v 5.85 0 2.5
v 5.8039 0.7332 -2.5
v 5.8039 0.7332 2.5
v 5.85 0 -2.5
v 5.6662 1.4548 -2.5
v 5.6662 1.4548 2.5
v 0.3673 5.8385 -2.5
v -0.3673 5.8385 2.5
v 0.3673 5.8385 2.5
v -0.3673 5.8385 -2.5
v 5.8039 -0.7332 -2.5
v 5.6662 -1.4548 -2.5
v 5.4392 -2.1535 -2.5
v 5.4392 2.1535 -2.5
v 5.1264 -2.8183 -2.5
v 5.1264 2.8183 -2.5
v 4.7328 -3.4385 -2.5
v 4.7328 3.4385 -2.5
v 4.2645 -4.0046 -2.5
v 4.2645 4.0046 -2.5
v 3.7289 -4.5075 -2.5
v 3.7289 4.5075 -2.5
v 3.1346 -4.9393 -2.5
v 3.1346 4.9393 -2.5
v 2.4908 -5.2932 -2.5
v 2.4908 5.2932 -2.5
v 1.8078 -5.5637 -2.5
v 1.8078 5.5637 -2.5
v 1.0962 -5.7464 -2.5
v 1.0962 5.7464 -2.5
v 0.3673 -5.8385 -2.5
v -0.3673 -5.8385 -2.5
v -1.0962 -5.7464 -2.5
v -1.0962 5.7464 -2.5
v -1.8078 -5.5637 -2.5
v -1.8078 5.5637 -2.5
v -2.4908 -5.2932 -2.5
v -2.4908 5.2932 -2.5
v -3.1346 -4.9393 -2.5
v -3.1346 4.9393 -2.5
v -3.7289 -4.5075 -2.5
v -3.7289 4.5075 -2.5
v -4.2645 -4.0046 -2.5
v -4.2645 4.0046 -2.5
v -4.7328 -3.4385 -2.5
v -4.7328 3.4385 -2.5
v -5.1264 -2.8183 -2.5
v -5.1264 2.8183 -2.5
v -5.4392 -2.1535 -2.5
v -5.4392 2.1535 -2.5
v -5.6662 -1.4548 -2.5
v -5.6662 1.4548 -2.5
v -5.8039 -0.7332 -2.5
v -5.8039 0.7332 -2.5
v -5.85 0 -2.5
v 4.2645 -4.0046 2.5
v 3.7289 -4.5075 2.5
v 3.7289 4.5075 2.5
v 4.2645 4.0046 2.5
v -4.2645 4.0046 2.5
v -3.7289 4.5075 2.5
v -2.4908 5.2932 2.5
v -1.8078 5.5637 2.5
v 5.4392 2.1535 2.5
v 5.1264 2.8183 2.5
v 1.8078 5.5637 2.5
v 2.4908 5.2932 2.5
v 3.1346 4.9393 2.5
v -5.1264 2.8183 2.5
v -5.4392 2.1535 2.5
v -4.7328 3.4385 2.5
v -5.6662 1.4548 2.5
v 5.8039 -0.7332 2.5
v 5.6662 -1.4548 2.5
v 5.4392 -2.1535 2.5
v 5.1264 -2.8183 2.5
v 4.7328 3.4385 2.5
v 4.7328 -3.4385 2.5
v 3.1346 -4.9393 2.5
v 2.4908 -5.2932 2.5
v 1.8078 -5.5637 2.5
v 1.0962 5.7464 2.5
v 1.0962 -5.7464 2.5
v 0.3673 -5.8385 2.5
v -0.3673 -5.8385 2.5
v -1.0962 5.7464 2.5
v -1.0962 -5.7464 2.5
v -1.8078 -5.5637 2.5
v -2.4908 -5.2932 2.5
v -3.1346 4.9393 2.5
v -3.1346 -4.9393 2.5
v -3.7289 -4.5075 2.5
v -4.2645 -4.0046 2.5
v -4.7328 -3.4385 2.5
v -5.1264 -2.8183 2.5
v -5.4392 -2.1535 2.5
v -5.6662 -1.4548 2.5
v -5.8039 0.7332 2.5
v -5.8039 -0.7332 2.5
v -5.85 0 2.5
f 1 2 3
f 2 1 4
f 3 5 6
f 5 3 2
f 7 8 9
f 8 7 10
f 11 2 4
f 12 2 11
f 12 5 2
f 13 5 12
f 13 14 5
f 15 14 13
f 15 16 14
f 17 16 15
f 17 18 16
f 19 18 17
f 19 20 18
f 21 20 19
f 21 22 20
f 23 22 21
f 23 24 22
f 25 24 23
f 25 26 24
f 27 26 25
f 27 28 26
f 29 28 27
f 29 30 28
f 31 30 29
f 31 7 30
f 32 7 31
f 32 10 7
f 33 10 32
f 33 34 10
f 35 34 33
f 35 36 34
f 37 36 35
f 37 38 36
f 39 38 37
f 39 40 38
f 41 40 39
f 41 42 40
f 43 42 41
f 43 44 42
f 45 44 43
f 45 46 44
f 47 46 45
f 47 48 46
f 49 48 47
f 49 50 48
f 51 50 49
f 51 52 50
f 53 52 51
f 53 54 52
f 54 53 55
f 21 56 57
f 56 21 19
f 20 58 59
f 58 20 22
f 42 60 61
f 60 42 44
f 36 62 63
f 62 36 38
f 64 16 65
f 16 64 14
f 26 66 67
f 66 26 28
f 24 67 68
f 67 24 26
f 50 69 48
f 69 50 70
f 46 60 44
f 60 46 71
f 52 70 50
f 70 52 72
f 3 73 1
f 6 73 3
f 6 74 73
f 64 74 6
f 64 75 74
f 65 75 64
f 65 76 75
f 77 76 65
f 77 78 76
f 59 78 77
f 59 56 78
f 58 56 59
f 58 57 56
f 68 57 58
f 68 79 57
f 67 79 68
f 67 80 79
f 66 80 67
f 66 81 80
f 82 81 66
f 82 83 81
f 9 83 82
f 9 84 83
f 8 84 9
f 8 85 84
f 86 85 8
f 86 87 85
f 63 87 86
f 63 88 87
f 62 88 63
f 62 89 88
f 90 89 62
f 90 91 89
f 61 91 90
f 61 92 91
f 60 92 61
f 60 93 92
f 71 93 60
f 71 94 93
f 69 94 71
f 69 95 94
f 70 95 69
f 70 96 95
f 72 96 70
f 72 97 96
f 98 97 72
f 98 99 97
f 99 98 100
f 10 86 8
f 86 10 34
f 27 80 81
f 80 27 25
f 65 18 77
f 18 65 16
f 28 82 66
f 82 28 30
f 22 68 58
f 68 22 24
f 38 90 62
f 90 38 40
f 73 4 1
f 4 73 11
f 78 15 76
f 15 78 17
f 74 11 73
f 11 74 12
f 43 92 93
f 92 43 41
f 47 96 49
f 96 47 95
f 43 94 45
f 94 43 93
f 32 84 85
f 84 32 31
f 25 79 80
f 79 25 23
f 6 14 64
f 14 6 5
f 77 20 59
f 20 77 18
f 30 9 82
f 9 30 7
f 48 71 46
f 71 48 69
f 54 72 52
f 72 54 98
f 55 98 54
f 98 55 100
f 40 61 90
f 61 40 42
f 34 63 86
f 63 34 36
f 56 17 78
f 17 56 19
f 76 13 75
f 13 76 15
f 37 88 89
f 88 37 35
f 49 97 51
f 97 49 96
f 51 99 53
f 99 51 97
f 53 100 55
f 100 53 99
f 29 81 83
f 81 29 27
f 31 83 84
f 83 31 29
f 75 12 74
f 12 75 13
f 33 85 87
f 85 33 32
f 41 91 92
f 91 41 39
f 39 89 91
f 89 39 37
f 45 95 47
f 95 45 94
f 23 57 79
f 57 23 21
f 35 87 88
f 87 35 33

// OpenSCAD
$fn = 50;


difference() {
	union() {
		translate(v = [0, 0, -2.5000000000]) {
			cylinder(h = 5, r = 5.8500000000);
		}
	}
	union() {
		translate(v = [0, 0, -100.0000000000]) {
			cylinder(h = 200, r = 0);
		}
	}
}
